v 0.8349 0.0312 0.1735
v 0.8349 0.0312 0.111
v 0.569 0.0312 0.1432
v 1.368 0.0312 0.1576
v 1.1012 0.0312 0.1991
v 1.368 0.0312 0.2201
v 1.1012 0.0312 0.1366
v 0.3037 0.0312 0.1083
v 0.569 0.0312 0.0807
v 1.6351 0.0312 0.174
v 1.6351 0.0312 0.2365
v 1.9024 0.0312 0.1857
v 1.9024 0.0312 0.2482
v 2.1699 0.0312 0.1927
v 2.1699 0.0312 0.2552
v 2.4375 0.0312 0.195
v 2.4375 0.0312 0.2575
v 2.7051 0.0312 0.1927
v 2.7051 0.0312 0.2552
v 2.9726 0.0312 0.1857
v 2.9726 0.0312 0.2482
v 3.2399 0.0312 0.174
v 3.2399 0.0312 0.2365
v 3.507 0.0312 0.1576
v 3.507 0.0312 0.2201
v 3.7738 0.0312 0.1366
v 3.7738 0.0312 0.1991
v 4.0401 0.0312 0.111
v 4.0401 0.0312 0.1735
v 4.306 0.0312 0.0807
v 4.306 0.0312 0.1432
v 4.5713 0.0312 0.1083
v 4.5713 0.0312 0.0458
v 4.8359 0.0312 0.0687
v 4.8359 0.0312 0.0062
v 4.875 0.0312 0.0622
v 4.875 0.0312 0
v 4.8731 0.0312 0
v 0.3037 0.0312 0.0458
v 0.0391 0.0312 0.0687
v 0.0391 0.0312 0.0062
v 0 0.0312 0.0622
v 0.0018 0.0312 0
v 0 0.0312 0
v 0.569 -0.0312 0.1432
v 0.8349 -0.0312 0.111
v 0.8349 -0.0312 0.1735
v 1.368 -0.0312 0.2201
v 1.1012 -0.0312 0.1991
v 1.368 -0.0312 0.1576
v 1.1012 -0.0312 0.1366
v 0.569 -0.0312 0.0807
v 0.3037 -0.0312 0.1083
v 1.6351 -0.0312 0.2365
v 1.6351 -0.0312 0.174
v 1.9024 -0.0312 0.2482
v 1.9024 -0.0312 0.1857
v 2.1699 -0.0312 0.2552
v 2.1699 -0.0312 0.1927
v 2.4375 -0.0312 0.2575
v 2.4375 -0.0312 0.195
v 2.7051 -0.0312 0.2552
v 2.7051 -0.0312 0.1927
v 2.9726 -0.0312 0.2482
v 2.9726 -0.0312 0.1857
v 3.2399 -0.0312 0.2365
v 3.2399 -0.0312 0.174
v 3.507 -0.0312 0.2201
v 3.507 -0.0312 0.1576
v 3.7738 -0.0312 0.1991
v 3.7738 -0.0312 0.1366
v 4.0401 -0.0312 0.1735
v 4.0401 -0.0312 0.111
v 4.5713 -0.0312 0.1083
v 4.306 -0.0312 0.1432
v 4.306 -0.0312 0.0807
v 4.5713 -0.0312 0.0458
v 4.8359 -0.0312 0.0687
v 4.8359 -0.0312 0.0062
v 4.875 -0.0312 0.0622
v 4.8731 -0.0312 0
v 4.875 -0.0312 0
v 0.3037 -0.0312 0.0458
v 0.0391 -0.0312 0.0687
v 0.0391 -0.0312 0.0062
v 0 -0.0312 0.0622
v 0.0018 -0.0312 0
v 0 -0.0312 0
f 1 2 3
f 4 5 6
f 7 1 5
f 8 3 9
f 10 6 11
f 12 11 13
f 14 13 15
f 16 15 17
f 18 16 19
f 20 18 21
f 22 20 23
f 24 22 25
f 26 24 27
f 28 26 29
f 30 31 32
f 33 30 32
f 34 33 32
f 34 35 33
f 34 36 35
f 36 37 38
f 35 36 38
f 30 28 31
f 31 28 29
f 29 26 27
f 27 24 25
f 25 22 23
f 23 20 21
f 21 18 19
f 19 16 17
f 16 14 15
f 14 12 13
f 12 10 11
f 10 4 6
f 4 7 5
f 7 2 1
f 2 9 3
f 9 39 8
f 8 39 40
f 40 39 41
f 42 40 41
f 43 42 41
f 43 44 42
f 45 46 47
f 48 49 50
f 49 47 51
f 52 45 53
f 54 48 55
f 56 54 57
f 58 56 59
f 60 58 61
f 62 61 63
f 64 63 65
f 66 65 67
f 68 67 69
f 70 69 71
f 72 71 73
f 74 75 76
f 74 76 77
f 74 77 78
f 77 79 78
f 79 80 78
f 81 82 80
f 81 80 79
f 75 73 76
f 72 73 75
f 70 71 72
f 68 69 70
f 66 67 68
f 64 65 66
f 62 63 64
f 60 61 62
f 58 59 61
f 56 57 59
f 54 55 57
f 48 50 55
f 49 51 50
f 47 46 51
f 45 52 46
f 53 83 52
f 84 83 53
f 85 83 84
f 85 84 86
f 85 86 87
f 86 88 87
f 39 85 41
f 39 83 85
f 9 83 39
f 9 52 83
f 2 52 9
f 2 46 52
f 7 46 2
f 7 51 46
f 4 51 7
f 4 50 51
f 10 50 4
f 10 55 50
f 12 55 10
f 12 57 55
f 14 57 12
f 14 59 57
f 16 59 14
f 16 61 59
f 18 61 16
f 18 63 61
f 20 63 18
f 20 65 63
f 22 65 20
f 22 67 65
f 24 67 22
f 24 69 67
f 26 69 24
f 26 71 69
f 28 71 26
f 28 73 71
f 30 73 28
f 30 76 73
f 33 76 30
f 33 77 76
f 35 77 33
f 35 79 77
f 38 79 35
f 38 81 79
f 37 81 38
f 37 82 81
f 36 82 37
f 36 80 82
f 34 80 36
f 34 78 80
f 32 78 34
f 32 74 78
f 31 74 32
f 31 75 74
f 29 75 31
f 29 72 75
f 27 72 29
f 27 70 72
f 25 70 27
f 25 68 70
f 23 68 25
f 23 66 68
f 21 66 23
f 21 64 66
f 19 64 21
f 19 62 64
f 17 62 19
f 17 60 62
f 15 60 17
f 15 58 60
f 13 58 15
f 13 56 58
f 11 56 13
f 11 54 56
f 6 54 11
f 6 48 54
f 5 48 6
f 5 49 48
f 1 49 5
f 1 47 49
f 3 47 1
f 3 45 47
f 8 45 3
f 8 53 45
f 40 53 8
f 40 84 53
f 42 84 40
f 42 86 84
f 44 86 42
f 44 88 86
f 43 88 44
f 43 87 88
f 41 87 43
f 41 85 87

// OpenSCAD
// file: ../../../constraints.scad
//####################################
// Math-Magik LPP - Design Constraints
// (c) 2021 by Roie R. Black
//====================================

// AMA Rules for event 208
//------------------------------------

max_overall_length = 20;
max_projected_wing_span = 18;
max_bearing_to_rear_hook = 10;
max_wing_chord = 5;
max_stab_span = 12;
max_stab_chord = 4;
max_prop_diameter = 12;
// file: MMlib/circle_template_rib.scad
//####################################
// rib.scad - circle template rib
// (c) 2021 by Roie R. Black
//====================================
$fn=360;
module circle_template_rib(chord,camber,height,thickness) {

  // calculate the radius for this arc
  camber = chord * camber / 100;
  radius = (chord * chord) / (8 * camber) + camber/2;
  // generate the rib
  translate([0,thickness/2,0])
    rotate([90,0,0])
      linear_extrude(height = thickness) {
        intersection() {
          difference() {
            square([chord,1]);
            translate([chord/2, -radius + camber]) circle(r=radius);
          }
          translate([chord/2, -radius + camber + height]) circle(r=radius);
        }
      }
}
//====================================
// display this shape

circle_template_rib(5,4,1/16,1/32);
// file: ../../wing_data.scad
//#####################################
// wing.data
// (c) 2021 by Roie R. Black
//=====================================
include <../constraints.scad>

// center section dimensions
center_span = 12;
spar_size = 1/16;
rib_chord = max_wing_chord - 2 * spar_size;
rib_camber = 4;
num_center_ribs = 5;

// tip section dimensions
tip_dihedral = 1.75;
tip_radius = 2;
a = tip_dihedral;
b = (max_projected_wing_span - center_span)/2;
tip_span = sqrt(a*a + b*b);
tip_dihedral_angle = atan2(a,b);
tip_le_span = tip_span - tip_radius;
tip_rib_chord = max_wing_chord - tip_radius - spar_size;
// main file
//###################################################
// rib.scad
// (c) 2021 - Roie R. Black
//***************************************************
include <../../wing_data.scad>

use <MMlib/circle_template_rib.scad>

module rib() {
    circle_template_rib(rib_chord, rib_camber, spar_size, spar_size);
}

rib();
